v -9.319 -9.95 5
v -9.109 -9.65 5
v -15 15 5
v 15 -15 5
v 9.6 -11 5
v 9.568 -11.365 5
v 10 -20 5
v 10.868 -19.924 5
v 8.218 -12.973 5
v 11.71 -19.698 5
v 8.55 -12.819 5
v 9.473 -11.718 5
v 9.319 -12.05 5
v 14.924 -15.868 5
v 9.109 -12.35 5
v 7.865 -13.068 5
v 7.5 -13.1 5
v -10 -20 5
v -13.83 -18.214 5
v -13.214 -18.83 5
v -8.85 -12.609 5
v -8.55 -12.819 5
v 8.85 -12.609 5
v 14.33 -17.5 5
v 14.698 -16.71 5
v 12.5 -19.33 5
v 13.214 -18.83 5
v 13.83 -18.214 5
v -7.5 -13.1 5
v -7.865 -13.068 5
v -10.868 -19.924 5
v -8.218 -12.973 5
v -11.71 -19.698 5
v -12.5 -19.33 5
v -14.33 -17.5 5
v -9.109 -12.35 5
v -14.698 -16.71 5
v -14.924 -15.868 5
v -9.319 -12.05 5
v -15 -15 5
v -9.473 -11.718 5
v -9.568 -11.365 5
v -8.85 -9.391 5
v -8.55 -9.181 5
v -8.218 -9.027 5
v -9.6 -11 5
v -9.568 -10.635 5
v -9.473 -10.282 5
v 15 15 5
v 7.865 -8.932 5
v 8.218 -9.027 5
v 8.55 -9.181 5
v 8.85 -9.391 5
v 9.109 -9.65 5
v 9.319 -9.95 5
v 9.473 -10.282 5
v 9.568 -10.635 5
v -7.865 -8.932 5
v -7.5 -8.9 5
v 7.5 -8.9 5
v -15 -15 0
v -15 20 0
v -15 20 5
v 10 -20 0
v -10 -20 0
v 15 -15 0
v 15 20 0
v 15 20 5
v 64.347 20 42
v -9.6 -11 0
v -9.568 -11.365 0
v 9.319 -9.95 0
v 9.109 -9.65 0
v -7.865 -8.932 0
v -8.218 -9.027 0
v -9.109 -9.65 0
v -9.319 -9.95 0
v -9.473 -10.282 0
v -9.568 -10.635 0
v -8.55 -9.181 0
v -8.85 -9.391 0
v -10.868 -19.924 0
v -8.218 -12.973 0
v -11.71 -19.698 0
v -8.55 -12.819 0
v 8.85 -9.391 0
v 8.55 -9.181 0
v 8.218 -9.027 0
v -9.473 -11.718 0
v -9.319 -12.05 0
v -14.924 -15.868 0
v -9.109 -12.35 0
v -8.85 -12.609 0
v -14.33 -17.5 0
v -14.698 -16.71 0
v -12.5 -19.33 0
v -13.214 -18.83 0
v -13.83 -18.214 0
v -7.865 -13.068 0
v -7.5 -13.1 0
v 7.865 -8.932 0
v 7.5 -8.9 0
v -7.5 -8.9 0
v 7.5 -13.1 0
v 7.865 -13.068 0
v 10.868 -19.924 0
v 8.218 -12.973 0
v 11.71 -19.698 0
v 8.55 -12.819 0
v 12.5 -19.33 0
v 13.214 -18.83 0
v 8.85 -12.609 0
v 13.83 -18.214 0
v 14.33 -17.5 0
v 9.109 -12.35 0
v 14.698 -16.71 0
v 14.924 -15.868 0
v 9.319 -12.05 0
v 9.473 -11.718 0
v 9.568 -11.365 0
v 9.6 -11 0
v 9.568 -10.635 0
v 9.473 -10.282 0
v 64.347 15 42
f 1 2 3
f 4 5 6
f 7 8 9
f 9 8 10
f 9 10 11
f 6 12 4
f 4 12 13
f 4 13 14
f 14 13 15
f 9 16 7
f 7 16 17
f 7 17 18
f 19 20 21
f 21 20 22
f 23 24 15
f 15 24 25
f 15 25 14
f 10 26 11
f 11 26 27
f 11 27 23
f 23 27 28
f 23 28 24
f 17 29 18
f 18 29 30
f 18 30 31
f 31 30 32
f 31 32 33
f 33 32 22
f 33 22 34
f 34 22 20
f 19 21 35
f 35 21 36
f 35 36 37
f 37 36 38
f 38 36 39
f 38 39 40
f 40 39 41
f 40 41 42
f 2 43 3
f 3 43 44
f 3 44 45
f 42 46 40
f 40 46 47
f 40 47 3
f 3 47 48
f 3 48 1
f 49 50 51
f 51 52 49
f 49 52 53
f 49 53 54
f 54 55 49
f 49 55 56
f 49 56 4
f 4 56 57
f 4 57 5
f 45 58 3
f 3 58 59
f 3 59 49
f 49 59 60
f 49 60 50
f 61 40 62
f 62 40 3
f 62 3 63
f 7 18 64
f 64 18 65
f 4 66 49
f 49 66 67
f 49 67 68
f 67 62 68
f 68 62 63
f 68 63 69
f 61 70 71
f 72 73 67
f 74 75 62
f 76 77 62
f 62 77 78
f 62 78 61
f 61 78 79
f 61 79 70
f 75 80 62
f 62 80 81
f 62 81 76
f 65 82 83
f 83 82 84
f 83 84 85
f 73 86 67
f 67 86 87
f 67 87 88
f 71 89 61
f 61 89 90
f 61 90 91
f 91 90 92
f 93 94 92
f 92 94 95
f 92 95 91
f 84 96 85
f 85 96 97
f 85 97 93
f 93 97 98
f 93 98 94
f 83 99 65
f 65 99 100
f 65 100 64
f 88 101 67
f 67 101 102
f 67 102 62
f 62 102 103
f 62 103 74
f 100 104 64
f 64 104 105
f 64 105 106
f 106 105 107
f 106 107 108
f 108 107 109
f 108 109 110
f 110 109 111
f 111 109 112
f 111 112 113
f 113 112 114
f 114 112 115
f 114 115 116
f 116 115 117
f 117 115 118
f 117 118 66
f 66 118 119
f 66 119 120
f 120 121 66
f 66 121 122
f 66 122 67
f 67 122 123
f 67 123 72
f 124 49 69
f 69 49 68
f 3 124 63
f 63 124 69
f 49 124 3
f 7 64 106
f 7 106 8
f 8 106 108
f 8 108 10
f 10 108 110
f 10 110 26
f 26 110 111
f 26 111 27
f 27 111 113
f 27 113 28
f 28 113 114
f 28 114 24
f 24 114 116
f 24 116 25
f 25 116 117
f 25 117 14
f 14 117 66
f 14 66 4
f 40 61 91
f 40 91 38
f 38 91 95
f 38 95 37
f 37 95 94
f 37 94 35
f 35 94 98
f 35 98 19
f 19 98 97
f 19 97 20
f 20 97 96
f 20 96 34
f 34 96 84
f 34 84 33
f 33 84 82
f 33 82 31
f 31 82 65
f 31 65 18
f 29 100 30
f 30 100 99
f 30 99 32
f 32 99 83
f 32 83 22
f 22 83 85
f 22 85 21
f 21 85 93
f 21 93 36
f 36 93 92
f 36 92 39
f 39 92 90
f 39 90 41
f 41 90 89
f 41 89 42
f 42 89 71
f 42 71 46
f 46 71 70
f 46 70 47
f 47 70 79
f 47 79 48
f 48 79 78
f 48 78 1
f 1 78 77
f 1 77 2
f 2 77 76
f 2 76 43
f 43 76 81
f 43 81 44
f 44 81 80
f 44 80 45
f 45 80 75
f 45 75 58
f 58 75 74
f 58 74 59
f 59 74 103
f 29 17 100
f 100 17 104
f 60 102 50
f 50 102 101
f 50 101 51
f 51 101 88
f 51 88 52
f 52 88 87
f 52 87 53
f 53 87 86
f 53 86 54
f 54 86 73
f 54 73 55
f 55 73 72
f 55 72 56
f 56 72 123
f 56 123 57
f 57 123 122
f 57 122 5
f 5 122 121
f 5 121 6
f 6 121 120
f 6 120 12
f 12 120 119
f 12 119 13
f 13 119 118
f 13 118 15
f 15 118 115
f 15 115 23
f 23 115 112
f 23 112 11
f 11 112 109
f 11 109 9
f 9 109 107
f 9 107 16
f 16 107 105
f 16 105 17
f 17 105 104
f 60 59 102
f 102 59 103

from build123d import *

# Parameters (mm, degrees)
SKETCH1_W           = 30
SKETCH1_H           = 40
BOSS_EXTRUDE1_DEPTH = 5
BOSS_EXTRUDE2_DEPTH = 5
FILLET1_R           = 5
CUT_EXTRUDE1_DEPTH  = 5


with BuildPart() as part:
    # Sketch1 → Boss-Extrude1 (new body)
    with BuildSketch(Plane.XY):
        Rectangle(SKETCH1_W, SKETCH1_H)
    extrude(amount=BOSS_EXTRUDE1_DEPTH)

    # Sketch2 → Boss-Extrude2 (add)
    with BuildSketch(Plane(origin=(0, 20, 0), x_dir=(1, 0, 0), z_dir=(0, 1, 0))):
        Polygon((-15, -5), (64.346756059, -42), (15, -5), align=None)
    extrude(amount=-BOSS_EXTRUDE2_DEPTH)

    # Fillet1
    fillet1_edges = [part.edges().sort_by_distance(p)[0] for p in [
        (15, -20, 2.5),
        (-15, -20, 2.5),
    ]]
    fillet(fillet1_edges, radius=FILLET1_R)

    # Sketch3 → Cut-Extrude1 (cut)
    with BuildSketch(Plane(origin=(0, 0, 0), x_dir=(-1, 0, 0), z_dir=(0, 0, -1))):
        with BuildLine():
            Line((7.5, -13.1), (-7.5, -13.1))
            ThreePointArc((-7.5, -13.1), (-9.6, -11), (-7.5, -8.9))
            Line((-7.5, -8.9), (7.5, -8.9))
            ThreePointArc((7.5, -8.9), (9.6, -11), (7.5, -13.1))
        make_face()
    extrude(amount=-CUT_EXTRUDE1_DEPTH, mode=Mode.SUBTRACT)


solid = part.part
